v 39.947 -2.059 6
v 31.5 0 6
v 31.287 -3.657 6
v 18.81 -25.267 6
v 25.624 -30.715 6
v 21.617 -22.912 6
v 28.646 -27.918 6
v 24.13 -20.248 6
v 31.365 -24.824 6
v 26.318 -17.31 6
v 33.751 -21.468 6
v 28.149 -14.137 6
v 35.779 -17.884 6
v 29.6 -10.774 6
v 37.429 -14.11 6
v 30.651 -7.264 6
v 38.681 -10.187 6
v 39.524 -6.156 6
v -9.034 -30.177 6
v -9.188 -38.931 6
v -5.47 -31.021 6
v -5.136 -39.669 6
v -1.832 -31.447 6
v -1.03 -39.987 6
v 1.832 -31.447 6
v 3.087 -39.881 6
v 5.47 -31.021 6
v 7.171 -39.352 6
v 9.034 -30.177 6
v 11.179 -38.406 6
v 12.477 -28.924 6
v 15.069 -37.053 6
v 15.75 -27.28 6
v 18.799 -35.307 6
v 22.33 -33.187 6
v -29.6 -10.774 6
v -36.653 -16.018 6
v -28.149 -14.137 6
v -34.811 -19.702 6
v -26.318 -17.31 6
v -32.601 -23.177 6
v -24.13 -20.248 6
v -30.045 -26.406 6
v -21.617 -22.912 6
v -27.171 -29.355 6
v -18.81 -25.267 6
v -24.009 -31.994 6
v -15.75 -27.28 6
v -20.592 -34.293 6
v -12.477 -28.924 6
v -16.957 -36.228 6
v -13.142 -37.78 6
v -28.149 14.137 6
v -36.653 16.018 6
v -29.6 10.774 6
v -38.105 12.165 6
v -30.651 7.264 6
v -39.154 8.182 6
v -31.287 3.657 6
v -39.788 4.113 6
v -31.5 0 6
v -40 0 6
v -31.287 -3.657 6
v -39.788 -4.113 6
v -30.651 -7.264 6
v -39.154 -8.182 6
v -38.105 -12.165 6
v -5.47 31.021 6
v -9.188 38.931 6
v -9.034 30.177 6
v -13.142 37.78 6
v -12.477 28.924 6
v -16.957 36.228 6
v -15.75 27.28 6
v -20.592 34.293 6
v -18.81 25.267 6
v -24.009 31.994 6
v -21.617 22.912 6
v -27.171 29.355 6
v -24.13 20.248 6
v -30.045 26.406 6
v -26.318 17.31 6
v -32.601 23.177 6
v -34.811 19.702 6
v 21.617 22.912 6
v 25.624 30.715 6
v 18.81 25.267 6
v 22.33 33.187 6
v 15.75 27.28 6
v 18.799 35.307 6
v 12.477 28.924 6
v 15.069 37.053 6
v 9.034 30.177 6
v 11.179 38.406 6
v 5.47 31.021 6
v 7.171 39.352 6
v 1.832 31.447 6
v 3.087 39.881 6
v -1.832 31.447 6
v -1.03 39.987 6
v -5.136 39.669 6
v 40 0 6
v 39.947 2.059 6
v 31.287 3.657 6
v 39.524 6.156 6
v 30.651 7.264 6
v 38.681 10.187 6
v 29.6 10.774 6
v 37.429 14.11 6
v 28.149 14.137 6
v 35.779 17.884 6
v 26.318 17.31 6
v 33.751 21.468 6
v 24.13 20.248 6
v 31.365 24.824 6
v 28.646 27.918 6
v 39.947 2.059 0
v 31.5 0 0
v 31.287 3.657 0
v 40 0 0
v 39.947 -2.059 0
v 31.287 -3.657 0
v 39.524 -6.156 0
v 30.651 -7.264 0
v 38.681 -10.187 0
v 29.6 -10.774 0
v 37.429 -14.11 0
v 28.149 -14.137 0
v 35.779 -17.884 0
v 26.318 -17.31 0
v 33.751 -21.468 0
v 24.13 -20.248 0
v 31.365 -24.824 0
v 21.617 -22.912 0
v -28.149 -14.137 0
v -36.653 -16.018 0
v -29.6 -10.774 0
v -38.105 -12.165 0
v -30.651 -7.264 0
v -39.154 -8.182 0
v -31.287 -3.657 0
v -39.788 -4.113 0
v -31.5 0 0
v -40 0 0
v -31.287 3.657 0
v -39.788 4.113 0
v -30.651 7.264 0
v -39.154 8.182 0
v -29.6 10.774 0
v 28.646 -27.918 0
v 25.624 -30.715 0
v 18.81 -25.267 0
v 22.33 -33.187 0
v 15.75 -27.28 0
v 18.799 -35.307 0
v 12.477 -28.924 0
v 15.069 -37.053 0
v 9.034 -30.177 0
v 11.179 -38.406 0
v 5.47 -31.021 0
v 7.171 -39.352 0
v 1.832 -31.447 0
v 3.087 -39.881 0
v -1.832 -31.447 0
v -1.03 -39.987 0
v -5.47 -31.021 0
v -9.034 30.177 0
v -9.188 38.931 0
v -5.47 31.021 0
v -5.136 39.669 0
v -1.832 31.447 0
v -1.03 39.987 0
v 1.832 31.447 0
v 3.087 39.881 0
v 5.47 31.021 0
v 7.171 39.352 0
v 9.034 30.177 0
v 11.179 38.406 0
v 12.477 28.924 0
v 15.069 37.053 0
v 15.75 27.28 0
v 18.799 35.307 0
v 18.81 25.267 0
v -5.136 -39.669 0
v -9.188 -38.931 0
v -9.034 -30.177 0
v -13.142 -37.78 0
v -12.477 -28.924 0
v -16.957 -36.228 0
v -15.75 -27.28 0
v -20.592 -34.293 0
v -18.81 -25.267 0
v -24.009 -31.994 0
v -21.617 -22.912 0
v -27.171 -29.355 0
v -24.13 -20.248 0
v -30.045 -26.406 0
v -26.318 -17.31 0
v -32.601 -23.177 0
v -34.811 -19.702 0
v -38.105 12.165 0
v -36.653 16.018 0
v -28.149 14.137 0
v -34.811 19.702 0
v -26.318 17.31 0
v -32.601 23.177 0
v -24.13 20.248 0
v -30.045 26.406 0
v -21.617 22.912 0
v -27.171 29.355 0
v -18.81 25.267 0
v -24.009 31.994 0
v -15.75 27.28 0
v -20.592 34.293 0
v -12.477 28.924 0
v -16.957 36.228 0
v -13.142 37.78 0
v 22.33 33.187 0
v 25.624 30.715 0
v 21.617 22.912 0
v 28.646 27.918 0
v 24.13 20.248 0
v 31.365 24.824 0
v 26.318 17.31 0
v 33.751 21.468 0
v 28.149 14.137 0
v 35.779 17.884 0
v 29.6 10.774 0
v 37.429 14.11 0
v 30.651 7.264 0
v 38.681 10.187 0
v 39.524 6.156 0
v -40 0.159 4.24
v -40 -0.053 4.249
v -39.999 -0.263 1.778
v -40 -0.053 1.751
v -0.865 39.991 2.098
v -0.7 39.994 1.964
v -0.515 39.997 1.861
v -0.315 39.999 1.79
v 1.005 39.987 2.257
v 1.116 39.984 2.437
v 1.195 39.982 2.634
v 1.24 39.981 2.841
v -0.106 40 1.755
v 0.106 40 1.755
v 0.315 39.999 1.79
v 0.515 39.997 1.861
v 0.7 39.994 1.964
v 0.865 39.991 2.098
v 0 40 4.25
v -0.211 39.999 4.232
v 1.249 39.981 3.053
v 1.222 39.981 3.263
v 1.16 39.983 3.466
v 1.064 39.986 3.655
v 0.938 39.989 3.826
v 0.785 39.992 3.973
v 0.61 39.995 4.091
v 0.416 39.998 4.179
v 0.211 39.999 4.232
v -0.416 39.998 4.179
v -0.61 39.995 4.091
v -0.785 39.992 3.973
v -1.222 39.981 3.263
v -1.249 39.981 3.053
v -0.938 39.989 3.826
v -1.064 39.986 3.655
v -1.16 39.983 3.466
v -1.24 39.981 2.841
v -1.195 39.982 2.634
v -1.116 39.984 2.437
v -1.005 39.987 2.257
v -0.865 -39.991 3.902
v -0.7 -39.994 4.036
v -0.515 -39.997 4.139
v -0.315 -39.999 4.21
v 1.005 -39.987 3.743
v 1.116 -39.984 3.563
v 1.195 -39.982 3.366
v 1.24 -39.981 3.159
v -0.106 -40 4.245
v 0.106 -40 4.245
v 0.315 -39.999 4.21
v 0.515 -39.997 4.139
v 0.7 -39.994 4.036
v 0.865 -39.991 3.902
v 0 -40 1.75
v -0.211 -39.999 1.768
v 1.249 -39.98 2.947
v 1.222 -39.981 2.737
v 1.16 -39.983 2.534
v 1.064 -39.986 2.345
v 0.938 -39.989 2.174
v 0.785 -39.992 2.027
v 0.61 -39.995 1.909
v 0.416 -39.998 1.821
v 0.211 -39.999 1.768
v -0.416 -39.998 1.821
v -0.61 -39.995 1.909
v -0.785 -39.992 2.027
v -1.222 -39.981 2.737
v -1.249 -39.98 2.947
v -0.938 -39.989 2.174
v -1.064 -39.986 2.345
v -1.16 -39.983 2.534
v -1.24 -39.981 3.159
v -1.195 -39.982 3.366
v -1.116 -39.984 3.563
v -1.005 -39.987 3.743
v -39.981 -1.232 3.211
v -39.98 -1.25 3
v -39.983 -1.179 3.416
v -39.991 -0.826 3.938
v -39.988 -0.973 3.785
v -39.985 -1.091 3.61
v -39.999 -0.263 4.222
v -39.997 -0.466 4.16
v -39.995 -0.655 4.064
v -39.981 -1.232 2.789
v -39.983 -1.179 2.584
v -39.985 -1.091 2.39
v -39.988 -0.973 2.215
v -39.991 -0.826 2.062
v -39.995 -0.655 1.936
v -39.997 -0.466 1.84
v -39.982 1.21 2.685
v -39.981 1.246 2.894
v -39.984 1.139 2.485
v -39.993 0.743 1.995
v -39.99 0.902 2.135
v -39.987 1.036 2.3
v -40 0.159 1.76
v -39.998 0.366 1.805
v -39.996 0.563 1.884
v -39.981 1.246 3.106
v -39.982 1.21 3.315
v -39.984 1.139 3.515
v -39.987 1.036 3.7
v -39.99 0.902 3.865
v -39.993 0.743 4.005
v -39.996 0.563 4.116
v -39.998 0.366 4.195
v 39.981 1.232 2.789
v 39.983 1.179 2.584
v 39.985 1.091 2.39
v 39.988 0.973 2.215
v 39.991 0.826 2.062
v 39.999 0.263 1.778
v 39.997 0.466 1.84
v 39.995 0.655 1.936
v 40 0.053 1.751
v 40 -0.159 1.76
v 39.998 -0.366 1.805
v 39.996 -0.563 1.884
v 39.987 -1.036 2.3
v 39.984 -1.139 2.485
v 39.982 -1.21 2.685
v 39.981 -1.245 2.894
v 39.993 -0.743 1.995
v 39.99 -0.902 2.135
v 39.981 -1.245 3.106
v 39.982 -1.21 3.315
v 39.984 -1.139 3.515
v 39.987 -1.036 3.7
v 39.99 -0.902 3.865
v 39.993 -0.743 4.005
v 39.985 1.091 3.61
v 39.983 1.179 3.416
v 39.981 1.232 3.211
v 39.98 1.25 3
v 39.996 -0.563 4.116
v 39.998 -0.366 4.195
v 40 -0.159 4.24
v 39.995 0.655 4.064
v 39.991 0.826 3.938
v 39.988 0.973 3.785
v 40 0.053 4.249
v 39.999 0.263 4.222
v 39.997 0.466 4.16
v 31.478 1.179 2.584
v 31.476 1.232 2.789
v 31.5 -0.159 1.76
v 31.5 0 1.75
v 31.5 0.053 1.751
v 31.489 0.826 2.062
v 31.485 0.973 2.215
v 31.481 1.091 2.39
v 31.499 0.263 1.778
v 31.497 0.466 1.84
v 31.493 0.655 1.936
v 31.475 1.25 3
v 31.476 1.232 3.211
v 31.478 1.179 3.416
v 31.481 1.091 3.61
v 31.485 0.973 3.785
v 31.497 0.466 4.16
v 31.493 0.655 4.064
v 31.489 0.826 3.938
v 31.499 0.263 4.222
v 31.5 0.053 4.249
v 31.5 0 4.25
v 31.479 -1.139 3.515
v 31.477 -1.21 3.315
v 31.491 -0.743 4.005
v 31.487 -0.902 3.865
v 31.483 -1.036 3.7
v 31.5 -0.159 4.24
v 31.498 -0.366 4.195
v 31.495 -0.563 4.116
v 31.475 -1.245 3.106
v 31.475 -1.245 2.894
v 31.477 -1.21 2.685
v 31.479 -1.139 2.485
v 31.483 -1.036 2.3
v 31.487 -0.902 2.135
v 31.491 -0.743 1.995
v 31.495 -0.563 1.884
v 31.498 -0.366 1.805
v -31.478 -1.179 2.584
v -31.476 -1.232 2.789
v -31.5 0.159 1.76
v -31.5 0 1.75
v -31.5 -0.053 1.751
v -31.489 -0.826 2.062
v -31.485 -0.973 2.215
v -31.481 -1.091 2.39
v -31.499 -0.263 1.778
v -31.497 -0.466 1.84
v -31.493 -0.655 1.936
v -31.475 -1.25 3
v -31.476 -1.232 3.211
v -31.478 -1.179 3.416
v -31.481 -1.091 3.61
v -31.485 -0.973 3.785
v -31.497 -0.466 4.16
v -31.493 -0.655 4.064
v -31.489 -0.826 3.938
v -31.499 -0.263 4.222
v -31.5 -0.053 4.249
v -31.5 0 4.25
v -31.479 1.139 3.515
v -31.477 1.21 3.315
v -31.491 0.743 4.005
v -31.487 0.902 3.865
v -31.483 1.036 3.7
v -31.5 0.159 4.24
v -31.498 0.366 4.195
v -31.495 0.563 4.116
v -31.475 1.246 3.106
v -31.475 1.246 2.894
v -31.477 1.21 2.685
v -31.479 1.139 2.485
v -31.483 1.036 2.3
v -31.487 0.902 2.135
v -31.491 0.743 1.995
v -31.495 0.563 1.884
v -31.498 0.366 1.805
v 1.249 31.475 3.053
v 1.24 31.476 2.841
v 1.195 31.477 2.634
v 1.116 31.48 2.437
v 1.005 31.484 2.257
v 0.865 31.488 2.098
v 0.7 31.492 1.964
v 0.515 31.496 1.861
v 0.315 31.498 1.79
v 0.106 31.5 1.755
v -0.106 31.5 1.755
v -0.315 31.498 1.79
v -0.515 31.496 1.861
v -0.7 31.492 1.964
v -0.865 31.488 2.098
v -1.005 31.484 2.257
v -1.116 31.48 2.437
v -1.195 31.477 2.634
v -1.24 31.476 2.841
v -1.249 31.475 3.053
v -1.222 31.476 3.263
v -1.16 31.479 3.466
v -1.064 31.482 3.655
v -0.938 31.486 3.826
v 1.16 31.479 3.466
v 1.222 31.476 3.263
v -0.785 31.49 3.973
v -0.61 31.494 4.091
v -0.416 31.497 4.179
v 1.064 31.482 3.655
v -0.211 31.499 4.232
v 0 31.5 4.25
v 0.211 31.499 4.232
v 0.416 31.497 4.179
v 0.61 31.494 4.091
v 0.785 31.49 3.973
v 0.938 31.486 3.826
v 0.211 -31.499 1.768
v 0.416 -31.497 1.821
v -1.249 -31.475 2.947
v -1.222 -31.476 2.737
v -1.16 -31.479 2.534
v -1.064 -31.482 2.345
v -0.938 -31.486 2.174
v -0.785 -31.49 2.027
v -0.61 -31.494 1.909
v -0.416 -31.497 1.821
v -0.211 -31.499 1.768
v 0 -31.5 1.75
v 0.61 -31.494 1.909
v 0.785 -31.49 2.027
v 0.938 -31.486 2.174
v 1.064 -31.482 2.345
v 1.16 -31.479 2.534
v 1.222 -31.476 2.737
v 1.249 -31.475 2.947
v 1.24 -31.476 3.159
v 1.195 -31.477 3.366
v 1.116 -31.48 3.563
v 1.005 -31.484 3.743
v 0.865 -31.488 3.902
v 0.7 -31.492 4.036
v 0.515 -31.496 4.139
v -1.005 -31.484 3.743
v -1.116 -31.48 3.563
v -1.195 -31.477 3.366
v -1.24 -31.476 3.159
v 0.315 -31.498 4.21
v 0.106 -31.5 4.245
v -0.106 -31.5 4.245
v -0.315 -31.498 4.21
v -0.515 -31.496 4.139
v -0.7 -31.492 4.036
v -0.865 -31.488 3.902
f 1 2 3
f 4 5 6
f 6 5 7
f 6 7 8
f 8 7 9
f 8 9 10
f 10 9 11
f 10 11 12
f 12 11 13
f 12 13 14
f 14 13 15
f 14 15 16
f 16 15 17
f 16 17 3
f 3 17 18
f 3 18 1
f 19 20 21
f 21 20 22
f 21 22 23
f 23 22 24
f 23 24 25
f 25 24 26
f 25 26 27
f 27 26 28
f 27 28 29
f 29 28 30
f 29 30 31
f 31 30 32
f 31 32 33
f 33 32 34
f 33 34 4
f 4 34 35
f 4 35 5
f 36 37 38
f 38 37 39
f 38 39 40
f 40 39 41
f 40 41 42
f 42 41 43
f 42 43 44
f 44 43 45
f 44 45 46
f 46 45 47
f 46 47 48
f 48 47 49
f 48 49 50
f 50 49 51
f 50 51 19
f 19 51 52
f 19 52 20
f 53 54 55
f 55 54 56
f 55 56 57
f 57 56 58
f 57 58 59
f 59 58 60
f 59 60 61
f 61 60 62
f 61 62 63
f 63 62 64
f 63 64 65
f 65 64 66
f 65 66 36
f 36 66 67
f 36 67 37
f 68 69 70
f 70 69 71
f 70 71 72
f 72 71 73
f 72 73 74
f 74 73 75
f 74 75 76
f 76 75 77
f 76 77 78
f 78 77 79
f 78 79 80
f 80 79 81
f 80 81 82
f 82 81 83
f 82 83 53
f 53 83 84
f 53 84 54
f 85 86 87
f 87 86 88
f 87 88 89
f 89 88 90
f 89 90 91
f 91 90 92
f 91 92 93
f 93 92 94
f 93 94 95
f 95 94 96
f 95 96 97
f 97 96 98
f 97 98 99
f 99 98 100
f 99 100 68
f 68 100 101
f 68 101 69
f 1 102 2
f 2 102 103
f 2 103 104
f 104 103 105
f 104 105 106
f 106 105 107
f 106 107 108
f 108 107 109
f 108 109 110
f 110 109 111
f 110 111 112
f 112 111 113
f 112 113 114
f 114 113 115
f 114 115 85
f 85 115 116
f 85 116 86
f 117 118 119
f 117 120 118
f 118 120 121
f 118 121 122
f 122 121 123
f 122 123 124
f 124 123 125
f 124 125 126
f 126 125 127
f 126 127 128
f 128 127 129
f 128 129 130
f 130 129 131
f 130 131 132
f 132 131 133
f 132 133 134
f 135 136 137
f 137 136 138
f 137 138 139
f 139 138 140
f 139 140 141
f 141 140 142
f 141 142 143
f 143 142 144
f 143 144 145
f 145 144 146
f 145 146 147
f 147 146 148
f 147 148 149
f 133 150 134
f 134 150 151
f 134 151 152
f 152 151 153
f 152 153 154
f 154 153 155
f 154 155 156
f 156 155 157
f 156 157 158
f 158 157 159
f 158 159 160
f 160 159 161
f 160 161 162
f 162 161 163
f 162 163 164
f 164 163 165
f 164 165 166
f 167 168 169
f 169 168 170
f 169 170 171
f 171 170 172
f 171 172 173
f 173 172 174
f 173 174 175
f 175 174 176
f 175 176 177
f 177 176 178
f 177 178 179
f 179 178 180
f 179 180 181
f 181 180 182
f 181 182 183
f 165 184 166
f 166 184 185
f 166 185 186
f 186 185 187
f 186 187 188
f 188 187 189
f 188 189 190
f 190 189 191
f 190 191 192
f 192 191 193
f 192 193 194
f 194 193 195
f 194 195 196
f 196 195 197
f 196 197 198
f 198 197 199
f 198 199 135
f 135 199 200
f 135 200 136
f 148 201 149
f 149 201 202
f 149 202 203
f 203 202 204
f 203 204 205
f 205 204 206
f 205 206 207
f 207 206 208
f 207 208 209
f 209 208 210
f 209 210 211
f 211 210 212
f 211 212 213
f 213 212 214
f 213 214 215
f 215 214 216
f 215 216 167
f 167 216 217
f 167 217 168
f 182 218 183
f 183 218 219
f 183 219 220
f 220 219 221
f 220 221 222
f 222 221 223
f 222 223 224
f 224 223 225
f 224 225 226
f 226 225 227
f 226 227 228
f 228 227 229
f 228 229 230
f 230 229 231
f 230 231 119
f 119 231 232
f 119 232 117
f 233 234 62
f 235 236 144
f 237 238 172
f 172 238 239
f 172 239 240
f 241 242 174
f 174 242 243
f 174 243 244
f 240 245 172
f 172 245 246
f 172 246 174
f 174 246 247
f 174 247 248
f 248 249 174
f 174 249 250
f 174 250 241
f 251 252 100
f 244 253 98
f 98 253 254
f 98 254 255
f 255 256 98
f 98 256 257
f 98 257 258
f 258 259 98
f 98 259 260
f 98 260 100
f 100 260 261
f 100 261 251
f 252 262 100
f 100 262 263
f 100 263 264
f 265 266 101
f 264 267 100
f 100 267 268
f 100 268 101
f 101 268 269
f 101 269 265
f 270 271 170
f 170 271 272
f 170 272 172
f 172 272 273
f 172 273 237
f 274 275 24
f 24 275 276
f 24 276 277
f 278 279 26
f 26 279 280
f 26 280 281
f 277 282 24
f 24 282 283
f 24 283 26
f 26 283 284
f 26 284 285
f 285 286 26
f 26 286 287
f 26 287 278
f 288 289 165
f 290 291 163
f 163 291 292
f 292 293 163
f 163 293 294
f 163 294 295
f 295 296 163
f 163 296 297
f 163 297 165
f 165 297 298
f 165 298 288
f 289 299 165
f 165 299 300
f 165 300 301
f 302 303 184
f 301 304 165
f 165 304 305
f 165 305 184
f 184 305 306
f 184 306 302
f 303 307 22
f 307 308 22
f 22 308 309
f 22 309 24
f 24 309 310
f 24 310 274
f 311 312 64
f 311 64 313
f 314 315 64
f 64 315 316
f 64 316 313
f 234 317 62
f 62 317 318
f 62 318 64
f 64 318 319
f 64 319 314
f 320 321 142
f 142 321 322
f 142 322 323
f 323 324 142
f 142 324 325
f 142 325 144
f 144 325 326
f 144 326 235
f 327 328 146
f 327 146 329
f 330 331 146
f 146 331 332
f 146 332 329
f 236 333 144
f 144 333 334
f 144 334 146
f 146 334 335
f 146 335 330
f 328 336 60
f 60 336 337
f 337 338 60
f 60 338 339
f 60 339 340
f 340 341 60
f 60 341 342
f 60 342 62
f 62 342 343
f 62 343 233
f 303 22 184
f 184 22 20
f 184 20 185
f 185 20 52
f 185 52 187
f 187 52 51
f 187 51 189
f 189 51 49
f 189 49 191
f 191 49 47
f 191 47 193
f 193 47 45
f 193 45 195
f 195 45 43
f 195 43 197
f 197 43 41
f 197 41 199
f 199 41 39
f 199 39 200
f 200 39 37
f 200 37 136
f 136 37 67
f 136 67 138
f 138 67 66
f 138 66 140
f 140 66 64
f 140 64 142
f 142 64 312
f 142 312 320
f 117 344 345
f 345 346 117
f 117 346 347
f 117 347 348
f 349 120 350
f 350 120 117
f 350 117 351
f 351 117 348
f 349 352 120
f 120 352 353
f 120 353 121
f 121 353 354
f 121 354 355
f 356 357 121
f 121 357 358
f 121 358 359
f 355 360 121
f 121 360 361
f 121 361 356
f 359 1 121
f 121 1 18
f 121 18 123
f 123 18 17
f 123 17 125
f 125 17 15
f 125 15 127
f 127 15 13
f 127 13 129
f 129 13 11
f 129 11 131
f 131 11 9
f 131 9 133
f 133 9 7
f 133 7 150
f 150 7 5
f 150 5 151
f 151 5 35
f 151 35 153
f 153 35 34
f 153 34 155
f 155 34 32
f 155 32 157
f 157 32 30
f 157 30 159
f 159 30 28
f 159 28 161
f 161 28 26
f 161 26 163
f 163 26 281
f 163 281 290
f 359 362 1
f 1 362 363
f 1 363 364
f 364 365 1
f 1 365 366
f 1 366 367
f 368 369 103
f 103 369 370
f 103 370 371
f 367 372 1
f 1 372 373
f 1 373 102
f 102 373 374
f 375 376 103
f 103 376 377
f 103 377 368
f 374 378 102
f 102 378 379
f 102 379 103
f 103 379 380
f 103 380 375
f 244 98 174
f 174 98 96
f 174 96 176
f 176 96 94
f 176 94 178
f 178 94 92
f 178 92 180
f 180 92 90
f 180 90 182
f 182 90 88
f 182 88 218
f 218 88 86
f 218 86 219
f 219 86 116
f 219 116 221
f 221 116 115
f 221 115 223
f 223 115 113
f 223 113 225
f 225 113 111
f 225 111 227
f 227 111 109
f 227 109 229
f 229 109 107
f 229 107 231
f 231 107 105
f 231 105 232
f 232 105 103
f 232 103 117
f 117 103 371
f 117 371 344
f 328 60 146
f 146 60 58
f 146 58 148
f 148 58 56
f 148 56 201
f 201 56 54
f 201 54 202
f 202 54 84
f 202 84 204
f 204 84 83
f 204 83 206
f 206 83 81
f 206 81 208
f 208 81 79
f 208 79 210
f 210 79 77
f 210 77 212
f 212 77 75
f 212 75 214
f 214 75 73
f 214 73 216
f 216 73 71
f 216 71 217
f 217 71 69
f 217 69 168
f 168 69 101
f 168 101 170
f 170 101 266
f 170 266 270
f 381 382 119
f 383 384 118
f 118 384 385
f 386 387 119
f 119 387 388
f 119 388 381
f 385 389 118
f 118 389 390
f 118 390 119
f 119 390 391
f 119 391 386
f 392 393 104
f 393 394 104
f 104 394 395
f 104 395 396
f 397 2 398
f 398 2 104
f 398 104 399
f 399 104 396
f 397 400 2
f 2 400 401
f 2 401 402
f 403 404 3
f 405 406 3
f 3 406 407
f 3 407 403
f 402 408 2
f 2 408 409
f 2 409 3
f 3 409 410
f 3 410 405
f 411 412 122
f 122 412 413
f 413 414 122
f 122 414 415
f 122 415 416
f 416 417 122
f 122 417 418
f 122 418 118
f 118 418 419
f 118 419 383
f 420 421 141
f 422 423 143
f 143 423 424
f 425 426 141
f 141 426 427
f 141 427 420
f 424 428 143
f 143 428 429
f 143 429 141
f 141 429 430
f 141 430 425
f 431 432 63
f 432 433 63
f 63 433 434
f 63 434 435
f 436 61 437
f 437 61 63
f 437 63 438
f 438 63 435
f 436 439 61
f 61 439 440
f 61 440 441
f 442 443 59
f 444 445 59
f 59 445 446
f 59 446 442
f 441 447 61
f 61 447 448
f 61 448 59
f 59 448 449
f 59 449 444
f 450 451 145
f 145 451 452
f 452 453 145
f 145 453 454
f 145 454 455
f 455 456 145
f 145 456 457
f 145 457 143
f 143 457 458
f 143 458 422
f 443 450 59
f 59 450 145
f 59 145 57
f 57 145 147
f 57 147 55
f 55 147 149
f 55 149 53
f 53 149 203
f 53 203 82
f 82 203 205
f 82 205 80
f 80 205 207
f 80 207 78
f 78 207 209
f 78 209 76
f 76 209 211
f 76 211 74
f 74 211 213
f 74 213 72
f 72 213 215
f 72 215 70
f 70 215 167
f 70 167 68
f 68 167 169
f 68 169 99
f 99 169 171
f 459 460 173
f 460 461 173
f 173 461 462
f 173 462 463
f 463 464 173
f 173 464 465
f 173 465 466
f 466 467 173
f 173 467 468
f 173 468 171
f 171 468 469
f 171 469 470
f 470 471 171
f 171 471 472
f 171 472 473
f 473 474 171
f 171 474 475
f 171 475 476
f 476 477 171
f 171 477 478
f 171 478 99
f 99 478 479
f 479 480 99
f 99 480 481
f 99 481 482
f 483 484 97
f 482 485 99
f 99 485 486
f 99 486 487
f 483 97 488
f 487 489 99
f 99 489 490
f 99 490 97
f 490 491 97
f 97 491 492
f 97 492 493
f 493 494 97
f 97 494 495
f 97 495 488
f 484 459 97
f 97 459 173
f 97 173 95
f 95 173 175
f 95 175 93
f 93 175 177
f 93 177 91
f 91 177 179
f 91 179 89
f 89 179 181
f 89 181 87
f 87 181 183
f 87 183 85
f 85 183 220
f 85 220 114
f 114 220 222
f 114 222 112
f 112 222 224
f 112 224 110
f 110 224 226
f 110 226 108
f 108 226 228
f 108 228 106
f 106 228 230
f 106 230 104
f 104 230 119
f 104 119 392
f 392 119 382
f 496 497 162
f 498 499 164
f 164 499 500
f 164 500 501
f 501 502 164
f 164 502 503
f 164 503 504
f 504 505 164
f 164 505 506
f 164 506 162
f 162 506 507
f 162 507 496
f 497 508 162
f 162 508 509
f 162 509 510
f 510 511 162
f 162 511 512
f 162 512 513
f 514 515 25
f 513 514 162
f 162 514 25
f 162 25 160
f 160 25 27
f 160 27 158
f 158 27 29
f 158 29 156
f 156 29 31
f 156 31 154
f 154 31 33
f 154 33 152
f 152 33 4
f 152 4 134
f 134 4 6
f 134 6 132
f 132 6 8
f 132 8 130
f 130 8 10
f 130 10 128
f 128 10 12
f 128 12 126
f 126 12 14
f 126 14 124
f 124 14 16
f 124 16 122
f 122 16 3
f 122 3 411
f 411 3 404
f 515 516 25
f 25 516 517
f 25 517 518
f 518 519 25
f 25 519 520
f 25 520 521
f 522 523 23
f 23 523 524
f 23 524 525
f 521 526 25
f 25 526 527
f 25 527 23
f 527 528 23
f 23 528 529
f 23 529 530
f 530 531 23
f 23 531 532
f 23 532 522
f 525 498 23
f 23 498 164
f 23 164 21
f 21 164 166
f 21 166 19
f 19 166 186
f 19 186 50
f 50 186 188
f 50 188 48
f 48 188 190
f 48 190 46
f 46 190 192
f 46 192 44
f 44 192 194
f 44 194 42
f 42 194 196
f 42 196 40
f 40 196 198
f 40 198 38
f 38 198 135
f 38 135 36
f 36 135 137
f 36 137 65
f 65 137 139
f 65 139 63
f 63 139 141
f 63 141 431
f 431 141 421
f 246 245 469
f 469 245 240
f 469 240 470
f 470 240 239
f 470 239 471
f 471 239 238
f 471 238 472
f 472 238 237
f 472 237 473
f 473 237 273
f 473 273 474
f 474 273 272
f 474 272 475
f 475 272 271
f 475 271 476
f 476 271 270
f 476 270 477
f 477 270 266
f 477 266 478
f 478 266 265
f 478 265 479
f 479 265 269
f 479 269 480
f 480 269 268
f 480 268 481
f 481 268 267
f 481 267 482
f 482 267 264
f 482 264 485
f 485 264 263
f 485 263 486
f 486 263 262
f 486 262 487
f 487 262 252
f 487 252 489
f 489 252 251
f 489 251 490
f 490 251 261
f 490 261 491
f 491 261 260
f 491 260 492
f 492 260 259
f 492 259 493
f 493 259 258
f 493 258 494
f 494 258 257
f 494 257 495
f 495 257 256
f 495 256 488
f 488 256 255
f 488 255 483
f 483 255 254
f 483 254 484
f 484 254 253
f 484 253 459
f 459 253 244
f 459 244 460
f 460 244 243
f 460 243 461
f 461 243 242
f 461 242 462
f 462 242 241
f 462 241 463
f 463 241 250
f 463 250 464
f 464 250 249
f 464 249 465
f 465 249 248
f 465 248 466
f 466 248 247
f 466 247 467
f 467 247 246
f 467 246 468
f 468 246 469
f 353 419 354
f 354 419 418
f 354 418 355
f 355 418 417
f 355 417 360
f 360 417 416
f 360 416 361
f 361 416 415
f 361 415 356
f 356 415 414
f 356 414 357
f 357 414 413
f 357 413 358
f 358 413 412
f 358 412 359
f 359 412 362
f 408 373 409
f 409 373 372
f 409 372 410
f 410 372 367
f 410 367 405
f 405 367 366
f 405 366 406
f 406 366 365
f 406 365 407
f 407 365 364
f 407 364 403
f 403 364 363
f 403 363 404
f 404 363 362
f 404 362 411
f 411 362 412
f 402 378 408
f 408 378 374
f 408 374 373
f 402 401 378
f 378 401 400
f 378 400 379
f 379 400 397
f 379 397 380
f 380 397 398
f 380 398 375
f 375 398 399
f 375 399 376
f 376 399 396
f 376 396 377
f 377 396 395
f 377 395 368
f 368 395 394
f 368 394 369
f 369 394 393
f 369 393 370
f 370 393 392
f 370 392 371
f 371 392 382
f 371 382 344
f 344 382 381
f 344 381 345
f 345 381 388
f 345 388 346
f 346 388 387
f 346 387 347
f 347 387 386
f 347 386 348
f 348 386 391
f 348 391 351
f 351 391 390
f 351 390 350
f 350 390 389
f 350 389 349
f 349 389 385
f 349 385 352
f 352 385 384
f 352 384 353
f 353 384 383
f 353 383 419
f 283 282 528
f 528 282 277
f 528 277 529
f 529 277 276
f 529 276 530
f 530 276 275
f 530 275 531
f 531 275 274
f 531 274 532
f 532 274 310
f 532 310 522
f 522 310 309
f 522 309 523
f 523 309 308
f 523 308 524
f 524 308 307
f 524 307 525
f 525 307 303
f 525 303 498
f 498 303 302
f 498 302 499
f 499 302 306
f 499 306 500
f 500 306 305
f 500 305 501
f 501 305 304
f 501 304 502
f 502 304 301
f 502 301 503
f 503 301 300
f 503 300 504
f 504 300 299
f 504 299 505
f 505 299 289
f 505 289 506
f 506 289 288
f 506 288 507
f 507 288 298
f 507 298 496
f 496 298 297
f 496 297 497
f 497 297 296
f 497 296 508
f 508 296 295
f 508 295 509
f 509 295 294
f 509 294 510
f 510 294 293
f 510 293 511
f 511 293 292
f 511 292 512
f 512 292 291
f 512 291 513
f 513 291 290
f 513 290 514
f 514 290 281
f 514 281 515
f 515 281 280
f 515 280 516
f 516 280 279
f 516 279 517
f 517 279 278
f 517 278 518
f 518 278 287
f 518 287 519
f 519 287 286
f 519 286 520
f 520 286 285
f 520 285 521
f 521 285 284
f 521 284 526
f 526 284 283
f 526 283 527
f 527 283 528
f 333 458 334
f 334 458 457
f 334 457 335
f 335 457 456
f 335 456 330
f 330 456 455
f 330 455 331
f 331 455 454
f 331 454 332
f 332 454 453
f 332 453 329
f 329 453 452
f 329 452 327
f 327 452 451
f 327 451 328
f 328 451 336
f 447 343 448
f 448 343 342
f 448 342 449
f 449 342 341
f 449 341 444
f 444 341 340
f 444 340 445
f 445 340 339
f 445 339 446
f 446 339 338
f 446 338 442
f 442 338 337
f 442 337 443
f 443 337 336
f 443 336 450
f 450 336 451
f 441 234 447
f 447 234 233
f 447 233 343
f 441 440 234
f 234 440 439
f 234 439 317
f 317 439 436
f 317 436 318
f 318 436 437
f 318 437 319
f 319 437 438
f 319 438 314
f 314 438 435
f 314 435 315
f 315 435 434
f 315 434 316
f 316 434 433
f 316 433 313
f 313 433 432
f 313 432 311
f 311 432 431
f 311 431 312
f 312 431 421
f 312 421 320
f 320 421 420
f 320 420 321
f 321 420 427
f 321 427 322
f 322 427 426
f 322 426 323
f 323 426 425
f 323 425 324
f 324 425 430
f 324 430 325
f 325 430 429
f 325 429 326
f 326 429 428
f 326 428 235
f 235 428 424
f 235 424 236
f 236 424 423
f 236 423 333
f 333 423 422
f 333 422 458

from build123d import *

# Parameters (mm, degrees)
SKETCH1_R               = 40
SKETCH1_R_2             = 31.5
BOSS_EXTRUDE1_DEPTH     = 6
CUT_EXTRUDE1_REACH      = 91.644
CUT_EXTRUDE1_END_RADIUS = 31.5
SKETCH2_R               = 1.25
CIRPATTERN1_COUNT       = 4


with BuildPart() as part:
    # Sketch1 → Boss-Extrude1 (new body)
    with BuildSketch(Plane.XY):
        Circle(SKETCH1_R)
        Circle(SKETCH1_R_2, mode=Mode.SUBTRACT)
    extrude(amount=BOSS_EXTRUDE1_DEPTH)

    # Cut-Extrude1: up to this cylinder (the profile starts outside it)
    cut_extrude1_end = Plane(origin=(0, 0, 3), z_dir=(0, 0, -1)) * Cylinder(CUT_EXTRUDE1_END_RADIUS, 247.288, mode=Mode.PRIVATE)
    # Sketch2 → Cut-Extrude1 (cut, up to the surface)
    with BuildSketch(Plane(origin=(0, 40, 0), x_dir=(1, 0, 0), z_dir=(0, 1, 0)), mode=Mode.PRIVATE) as cut_extrude1_sk1:
        with Locations(Location((0, -3, 0), (0, 0, 270))):
            Circle(SKETCH2_R)
    cut_extrude1_tool1 = extrude(cut_extrude1_sk1.sketch, amount=-CUT_EXTRUDE1_REACH, mode=Mode.PRIVATE) - cut_extrude1_end
    cut_extrude1 = cut_extrude1_tool1.solids().sort_by_distance((0, 40, 3))[0]
    add(cut_extrude1, mode=Mode.SUBTRACT)

    # CirPattern1: Cut-Extrude1 ×4 about axis
    cirpattern1_axis = Axis((0, 0, 6), (0, 0, -1))
    for i in range(1, CIRPATTERN1_COUNT):
        add(cut_extrude1.rotate(cirpattern1_axis, i * 360 / CIRPATTERN1_COUNT), mode=Mode.SUBTRACT)


solid = part.part
